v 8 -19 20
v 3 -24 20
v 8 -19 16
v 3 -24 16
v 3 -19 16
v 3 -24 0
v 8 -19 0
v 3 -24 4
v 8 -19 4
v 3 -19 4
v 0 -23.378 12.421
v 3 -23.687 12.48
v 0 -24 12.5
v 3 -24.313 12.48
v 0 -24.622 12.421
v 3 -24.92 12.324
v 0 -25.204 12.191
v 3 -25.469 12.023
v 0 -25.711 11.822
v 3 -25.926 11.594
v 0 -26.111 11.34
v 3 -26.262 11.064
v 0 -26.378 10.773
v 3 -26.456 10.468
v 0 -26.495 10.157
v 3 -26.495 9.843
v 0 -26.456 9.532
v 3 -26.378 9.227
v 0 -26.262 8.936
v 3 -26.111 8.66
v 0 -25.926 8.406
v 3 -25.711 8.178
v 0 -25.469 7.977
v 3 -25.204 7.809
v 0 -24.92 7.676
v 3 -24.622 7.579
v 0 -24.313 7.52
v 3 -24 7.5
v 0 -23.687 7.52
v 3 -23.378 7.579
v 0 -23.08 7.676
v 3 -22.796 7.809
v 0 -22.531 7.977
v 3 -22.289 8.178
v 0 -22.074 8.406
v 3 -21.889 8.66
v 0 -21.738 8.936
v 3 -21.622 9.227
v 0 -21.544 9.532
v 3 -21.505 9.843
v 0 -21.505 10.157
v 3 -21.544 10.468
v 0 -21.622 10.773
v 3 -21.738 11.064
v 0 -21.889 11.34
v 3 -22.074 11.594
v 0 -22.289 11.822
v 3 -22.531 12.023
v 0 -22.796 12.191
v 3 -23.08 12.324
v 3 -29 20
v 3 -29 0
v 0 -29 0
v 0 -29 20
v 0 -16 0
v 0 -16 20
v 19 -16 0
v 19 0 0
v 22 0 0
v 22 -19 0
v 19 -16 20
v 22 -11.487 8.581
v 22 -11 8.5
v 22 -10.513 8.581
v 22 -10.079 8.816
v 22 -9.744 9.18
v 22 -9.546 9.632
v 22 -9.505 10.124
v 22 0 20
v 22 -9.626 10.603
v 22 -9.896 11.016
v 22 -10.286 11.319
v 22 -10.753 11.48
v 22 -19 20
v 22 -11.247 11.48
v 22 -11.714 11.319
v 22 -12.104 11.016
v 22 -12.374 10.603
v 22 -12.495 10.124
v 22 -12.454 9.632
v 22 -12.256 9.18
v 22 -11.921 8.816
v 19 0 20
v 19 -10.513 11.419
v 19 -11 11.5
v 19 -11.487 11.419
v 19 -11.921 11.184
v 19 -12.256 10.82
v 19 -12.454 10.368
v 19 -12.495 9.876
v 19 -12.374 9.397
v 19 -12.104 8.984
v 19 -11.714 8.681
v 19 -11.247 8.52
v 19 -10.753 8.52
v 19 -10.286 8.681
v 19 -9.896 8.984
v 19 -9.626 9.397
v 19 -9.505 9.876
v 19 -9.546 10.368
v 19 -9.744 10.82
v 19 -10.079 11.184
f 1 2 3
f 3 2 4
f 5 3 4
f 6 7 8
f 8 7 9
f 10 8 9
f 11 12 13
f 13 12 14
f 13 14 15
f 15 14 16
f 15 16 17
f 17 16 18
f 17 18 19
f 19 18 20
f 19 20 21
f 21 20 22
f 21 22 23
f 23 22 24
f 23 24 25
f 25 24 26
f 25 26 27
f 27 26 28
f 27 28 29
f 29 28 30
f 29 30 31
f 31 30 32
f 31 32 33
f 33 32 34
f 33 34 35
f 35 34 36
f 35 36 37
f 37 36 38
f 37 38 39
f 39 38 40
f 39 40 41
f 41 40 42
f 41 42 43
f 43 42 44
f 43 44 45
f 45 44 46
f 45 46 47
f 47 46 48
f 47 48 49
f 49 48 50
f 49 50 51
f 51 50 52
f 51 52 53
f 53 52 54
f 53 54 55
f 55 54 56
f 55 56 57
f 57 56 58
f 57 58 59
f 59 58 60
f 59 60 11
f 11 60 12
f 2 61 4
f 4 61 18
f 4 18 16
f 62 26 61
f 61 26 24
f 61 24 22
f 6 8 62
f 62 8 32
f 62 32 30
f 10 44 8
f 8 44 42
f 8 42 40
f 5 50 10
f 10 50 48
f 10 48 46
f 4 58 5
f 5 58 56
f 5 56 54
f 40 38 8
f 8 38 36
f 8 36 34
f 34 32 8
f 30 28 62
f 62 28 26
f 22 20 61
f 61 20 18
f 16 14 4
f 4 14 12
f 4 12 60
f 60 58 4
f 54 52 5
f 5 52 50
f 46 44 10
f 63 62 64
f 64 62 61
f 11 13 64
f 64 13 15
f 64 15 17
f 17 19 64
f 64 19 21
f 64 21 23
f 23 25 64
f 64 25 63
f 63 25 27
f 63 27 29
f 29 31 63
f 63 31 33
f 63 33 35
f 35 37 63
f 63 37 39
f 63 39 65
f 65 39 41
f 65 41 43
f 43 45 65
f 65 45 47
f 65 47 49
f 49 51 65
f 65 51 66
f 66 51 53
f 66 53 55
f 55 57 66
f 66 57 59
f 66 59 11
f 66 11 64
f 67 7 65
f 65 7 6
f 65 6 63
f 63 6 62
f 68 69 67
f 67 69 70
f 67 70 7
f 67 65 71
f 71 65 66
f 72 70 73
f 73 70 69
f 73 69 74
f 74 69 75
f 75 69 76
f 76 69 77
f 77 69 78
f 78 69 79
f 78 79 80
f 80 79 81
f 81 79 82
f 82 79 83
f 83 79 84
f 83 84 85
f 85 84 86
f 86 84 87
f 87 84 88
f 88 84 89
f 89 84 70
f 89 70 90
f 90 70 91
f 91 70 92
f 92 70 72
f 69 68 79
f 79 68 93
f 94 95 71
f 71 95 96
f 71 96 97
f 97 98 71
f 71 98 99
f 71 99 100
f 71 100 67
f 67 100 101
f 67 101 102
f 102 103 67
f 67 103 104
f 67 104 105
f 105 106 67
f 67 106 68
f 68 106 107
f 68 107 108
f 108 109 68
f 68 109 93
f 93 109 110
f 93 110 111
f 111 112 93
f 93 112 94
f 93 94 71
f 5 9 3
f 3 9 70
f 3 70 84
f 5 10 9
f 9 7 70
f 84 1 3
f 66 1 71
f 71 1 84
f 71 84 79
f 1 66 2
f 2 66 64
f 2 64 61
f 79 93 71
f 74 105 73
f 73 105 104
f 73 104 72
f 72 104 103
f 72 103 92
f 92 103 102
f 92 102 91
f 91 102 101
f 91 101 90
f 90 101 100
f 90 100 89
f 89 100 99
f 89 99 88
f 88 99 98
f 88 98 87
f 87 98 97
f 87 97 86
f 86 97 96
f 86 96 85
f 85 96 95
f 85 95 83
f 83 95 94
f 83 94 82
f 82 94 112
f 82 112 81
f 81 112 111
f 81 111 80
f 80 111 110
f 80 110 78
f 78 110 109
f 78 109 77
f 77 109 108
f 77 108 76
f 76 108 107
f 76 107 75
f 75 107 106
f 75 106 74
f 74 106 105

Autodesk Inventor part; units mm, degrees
ref_plane "YZ Plane" through (0, 0, 0) normal (1, 0, 0) x (0, 1, 0)
ref_plane "XZ Plane" through (0, 0, 0) normal (0, 1, 0) x (-1, 0, 0)
ref_plane "XY Plane" through (0, 0, 0) normal (0, 0, 1) x (1, 0, 0)
sketch "Sketch1" plane through (0, 0, 0) normal (0, 0, 1) x (1, 0, 0)
  line L0 (0, 0) -> (22, 0)
  line L1 (22, 0) -> (22, -19)
  line L2 (22, -19) -> (0, -19)
  line L3 (0, -19) -> (0, 0)
  line L4 (3, 0) -> (19, 0)
  line L5 (19, 0) -> (19, -16)
  line L6 (19, -16) -> (3, -16)
  line L7 (3, -16) -> (3, 0)
  dimension "d0" = 22
  dimension "d1" = 19
  dimension "d2" = 3
  dimension "d3" = 3
  dimension "d4" = 3
extrude "Extrusion1" add sketch "Sketch1" along normal blind 20 contours L0 L7 L6 L5 L1 L2 L3
sketch "Sketch4" plane through (3, -16, 0) normal (1, 0, 0) x (0, 0, -1)
  line L0 (-20, 0) -> (-20, 16) projected
  line L1 (0, 0) -> (-20, 0)
  line L2 (-20, 0) -> (-20, 16)
  line L3 (-20, 16) -> (0, 16)
  line L4 (0, 16) -> (0, 0)
extrude "Extrusion4" cut sketch "Sketch4" against normal through all
sketch "Sketch5" plane through (0, 0, 0) normal (0, 0, -1) x (-1, 0, 0)
  line L0 (0, -19) -> (-22, -19) projected
  line L1 (0, -19) -> (-3, -19)
  line L2 (-3, -19) -> (-3, -29)
  line L3 (-3, -29) -> (0, -29)
  line L4 (0, -29) -> (0, -19)
  point P0 (0, 0)
  dimension "d17" = 3
  dimension "d18" = 10
extrude "Extrusion5" add sketch "Sketch5" against normal blind 20
sketch "Sketch6" plane through (3, -29, 0) normal (1, 0, 0) x (0, 0, -1)
  line L0 (0, 10) -> (-20, 10) projected
  line L1 (0, 10) -> (0, 0) projected
  circle A0 centre (-10, 5) radius 2.5
  point P0 (0, 29)
  dimension "d21" = 5
  dimension "d22" = 10
  dimension "d23" = 5
extrude "Extrusion6" cut sketch "Sketch6" against normal through all
sketch "Sketch7" plane through (0, 0, 0) normal (0, 0, -1) x (-1, 0, 0)
  line L0 (-3, -19) -> (-22, -19) projected
  line L1 (-3, -29) -> (-3, -19) projected
  line L2 (-8, -19) -> (-3, -24)
  point P0 (0, 0)
  dimension "d26" = 5
  dimension "d27" = 5
extrude "Extrusion7" add sketch "Sketch7" against normal blind 4
sketch "Sketch8" plane through (0, 0, 20) normal (0, 0, 1) x (1, 0, 0)
  line L0 (3, -19) -> (22, -19) projected
  line L1 (3, -29) -> (3, -19) projected
  line L2 (8, -19) -> (3, -24)
  point P0 (0, 0)
  dimension "d30" = 5
  dimension "d31" = 5
extrude "Extrusion8" add sketch "Sketch8" against normal blind 4
sketch "Sketch9" plane through (19, -16, 0) normal (-1, 0, 0) x (0, 0, 1)
  line L0 (0, 16) -> (0, 0) projected
  line L1 (0, 0) -> (20, 0) projected
  circle A0 centre (10, 5) radius 1.5
  dimension "d34" = 10
  dimension "d35" = 5
  dimension "d36" = 3
extrude "Extrusion9" cut sketch "Sketch9" against normal through all
equation "\"d3\" = d2"
equation "\"d4\" = d2"
equation "\"d27\" = d26"
equation "\"d30\" = d26"
equation "\"d31\" = d30"
properties part number "LED strip mount v02"
